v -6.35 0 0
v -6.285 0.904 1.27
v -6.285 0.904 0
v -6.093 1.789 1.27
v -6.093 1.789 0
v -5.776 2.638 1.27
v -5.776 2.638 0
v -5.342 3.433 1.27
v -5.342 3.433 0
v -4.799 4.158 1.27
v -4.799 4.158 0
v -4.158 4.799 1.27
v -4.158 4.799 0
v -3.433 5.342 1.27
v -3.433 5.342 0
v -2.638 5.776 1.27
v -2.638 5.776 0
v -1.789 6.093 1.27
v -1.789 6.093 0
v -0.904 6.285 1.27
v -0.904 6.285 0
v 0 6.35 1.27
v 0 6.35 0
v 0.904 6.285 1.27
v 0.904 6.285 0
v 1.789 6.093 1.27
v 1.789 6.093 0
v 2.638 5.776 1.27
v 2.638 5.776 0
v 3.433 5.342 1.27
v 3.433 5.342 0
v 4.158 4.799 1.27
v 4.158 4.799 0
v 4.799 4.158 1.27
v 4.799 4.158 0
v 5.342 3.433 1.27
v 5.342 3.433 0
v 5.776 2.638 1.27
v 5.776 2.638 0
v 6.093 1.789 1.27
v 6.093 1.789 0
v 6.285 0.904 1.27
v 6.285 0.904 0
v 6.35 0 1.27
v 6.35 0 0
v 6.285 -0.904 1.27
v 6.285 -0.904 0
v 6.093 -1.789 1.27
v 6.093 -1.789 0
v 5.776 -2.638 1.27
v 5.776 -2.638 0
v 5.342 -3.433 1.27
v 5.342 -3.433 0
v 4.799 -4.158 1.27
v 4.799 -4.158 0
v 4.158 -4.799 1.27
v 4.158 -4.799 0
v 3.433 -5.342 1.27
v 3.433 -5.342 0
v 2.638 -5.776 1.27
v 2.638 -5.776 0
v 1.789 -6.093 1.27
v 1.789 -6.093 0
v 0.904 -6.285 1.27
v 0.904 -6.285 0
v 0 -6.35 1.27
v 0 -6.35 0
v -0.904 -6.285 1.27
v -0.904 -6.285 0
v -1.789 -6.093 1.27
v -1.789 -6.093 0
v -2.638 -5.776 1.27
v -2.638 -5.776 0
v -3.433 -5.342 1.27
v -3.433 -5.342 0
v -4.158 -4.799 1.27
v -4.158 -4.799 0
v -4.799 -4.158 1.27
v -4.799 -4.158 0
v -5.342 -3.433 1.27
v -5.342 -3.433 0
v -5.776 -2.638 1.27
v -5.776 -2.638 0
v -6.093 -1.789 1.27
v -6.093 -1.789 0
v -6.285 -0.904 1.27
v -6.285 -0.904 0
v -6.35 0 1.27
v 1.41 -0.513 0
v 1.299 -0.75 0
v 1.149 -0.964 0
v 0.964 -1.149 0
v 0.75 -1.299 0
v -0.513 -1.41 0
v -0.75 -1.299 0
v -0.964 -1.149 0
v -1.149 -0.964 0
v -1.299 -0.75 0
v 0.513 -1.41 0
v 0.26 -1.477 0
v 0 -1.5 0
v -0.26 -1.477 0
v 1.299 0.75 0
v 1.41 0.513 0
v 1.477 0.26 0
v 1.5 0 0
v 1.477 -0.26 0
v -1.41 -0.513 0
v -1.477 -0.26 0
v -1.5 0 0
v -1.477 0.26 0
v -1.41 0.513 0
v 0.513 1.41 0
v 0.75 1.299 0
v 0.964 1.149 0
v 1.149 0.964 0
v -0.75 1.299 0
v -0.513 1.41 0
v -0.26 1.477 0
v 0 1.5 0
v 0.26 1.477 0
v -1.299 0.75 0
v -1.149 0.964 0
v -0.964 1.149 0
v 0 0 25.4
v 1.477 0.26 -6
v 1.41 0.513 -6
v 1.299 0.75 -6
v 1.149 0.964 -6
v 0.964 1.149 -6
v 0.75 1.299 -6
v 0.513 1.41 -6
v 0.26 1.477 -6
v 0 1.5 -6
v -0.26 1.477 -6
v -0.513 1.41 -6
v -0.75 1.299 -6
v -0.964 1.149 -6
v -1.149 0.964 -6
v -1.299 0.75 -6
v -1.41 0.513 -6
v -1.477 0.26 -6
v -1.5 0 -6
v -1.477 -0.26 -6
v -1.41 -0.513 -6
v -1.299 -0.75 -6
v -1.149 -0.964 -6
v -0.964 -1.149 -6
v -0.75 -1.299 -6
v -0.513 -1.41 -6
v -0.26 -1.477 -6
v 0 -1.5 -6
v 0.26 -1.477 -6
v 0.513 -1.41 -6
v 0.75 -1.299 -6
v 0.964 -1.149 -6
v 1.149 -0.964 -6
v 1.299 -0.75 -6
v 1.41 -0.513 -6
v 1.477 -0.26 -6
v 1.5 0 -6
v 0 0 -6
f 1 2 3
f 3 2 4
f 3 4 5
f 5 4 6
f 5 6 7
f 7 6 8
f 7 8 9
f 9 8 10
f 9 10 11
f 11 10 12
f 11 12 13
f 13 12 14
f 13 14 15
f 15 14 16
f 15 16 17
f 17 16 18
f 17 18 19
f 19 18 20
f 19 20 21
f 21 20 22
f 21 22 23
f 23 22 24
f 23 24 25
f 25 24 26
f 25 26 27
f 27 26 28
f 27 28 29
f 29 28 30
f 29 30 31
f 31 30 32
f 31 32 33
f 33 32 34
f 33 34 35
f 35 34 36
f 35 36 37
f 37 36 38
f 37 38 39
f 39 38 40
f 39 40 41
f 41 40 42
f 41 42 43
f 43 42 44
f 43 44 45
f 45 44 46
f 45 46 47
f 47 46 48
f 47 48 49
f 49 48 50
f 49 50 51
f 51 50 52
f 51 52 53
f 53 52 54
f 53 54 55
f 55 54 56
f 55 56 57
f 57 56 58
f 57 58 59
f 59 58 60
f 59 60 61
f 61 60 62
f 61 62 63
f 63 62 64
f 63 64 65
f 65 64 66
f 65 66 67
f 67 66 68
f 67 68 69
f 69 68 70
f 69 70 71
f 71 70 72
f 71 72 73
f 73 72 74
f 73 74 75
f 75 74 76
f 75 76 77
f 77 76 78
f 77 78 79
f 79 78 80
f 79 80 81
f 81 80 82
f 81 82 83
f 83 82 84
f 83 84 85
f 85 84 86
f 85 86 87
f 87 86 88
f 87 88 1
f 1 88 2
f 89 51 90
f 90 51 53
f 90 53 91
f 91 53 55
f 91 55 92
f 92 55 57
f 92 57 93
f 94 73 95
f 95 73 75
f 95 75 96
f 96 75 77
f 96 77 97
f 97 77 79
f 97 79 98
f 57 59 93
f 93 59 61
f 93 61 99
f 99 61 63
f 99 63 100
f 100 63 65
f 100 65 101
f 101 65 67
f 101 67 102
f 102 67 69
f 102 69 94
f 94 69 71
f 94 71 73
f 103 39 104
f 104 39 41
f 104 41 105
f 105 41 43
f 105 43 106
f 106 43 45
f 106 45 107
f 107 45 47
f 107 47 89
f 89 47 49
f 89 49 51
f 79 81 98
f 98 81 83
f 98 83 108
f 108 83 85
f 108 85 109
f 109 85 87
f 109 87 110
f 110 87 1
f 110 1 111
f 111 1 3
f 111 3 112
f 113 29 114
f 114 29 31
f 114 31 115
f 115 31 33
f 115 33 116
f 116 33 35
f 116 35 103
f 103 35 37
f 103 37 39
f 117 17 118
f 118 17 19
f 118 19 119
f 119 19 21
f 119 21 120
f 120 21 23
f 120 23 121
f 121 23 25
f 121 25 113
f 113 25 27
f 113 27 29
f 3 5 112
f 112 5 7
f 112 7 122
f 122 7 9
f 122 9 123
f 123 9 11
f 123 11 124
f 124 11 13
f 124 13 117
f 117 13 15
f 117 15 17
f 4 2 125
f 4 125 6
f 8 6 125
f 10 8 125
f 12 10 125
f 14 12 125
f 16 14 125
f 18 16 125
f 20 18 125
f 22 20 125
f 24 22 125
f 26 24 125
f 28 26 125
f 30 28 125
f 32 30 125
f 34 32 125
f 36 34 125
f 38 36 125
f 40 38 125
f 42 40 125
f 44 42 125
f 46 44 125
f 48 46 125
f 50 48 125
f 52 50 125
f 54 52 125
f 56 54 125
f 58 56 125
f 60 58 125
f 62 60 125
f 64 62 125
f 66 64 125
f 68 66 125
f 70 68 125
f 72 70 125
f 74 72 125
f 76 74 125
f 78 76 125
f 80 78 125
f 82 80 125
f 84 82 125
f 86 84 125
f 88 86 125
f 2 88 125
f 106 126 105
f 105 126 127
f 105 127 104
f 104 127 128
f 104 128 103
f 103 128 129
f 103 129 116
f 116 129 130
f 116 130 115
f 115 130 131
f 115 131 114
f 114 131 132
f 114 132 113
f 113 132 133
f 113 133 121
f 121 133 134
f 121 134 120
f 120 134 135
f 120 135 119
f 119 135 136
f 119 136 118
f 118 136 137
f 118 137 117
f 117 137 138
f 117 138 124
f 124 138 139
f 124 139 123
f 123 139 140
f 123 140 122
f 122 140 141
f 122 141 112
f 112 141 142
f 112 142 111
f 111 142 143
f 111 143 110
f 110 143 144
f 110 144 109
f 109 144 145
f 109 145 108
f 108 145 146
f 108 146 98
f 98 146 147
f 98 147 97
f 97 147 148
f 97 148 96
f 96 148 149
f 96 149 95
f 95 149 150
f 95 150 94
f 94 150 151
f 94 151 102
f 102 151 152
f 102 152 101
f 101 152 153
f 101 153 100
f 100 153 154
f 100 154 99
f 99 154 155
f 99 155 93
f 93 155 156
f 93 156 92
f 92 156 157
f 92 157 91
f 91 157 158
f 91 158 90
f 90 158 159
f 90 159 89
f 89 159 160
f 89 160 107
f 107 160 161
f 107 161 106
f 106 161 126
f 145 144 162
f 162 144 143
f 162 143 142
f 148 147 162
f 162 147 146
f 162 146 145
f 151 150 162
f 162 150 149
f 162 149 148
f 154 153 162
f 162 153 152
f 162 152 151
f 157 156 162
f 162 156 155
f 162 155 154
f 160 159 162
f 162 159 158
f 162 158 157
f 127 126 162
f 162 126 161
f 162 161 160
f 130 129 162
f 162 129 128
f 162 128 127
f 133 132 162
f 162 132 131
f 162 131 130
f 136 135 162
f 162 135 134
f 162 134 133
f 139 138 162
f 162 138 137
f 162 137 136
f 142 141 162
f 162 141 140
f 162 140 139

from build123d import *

# Parameters (mm, degrees)
SKETCH1_R           = 6.35
BOSS_EXTRUDE1_DEPTH = 1.27
SKETCH3_R           = 1.5
BOSS_EXTRUDE2_DEPTH = 6


# Read off the part's stored shape, not the designer's step: Loft1
with BuildPart() as part:
    # Sketch1 → Boss-Extrude1 (new body)
    with BuildSketch(Plane.XY):
        Circle(SKETCH1_R)
    extrude(amount=BOSS_EXTRUDE1_DEPTH)

    # Loft1 outline → Loft1 (revolve)
    with BuildSketch(Plane.XZ):
        Polygon((6.35, 1.27), (0, 25.4), (0, 1.27), align=None)
    revolve(axis=Axis((0, 0, 0), (0, 0, 1)))

    # Sketch3 → Boss-Extrude2 (add)
    with BuildSketch(Plane(origin=(0, 0, 0), x_dir=(-1, 0, 0), z_dir=(0, 0, -1))):
        Circle(SKETCH3_R)
    extrude(amount=BOSS_EXTRUDE2_DEPTH)


solid = part.part
